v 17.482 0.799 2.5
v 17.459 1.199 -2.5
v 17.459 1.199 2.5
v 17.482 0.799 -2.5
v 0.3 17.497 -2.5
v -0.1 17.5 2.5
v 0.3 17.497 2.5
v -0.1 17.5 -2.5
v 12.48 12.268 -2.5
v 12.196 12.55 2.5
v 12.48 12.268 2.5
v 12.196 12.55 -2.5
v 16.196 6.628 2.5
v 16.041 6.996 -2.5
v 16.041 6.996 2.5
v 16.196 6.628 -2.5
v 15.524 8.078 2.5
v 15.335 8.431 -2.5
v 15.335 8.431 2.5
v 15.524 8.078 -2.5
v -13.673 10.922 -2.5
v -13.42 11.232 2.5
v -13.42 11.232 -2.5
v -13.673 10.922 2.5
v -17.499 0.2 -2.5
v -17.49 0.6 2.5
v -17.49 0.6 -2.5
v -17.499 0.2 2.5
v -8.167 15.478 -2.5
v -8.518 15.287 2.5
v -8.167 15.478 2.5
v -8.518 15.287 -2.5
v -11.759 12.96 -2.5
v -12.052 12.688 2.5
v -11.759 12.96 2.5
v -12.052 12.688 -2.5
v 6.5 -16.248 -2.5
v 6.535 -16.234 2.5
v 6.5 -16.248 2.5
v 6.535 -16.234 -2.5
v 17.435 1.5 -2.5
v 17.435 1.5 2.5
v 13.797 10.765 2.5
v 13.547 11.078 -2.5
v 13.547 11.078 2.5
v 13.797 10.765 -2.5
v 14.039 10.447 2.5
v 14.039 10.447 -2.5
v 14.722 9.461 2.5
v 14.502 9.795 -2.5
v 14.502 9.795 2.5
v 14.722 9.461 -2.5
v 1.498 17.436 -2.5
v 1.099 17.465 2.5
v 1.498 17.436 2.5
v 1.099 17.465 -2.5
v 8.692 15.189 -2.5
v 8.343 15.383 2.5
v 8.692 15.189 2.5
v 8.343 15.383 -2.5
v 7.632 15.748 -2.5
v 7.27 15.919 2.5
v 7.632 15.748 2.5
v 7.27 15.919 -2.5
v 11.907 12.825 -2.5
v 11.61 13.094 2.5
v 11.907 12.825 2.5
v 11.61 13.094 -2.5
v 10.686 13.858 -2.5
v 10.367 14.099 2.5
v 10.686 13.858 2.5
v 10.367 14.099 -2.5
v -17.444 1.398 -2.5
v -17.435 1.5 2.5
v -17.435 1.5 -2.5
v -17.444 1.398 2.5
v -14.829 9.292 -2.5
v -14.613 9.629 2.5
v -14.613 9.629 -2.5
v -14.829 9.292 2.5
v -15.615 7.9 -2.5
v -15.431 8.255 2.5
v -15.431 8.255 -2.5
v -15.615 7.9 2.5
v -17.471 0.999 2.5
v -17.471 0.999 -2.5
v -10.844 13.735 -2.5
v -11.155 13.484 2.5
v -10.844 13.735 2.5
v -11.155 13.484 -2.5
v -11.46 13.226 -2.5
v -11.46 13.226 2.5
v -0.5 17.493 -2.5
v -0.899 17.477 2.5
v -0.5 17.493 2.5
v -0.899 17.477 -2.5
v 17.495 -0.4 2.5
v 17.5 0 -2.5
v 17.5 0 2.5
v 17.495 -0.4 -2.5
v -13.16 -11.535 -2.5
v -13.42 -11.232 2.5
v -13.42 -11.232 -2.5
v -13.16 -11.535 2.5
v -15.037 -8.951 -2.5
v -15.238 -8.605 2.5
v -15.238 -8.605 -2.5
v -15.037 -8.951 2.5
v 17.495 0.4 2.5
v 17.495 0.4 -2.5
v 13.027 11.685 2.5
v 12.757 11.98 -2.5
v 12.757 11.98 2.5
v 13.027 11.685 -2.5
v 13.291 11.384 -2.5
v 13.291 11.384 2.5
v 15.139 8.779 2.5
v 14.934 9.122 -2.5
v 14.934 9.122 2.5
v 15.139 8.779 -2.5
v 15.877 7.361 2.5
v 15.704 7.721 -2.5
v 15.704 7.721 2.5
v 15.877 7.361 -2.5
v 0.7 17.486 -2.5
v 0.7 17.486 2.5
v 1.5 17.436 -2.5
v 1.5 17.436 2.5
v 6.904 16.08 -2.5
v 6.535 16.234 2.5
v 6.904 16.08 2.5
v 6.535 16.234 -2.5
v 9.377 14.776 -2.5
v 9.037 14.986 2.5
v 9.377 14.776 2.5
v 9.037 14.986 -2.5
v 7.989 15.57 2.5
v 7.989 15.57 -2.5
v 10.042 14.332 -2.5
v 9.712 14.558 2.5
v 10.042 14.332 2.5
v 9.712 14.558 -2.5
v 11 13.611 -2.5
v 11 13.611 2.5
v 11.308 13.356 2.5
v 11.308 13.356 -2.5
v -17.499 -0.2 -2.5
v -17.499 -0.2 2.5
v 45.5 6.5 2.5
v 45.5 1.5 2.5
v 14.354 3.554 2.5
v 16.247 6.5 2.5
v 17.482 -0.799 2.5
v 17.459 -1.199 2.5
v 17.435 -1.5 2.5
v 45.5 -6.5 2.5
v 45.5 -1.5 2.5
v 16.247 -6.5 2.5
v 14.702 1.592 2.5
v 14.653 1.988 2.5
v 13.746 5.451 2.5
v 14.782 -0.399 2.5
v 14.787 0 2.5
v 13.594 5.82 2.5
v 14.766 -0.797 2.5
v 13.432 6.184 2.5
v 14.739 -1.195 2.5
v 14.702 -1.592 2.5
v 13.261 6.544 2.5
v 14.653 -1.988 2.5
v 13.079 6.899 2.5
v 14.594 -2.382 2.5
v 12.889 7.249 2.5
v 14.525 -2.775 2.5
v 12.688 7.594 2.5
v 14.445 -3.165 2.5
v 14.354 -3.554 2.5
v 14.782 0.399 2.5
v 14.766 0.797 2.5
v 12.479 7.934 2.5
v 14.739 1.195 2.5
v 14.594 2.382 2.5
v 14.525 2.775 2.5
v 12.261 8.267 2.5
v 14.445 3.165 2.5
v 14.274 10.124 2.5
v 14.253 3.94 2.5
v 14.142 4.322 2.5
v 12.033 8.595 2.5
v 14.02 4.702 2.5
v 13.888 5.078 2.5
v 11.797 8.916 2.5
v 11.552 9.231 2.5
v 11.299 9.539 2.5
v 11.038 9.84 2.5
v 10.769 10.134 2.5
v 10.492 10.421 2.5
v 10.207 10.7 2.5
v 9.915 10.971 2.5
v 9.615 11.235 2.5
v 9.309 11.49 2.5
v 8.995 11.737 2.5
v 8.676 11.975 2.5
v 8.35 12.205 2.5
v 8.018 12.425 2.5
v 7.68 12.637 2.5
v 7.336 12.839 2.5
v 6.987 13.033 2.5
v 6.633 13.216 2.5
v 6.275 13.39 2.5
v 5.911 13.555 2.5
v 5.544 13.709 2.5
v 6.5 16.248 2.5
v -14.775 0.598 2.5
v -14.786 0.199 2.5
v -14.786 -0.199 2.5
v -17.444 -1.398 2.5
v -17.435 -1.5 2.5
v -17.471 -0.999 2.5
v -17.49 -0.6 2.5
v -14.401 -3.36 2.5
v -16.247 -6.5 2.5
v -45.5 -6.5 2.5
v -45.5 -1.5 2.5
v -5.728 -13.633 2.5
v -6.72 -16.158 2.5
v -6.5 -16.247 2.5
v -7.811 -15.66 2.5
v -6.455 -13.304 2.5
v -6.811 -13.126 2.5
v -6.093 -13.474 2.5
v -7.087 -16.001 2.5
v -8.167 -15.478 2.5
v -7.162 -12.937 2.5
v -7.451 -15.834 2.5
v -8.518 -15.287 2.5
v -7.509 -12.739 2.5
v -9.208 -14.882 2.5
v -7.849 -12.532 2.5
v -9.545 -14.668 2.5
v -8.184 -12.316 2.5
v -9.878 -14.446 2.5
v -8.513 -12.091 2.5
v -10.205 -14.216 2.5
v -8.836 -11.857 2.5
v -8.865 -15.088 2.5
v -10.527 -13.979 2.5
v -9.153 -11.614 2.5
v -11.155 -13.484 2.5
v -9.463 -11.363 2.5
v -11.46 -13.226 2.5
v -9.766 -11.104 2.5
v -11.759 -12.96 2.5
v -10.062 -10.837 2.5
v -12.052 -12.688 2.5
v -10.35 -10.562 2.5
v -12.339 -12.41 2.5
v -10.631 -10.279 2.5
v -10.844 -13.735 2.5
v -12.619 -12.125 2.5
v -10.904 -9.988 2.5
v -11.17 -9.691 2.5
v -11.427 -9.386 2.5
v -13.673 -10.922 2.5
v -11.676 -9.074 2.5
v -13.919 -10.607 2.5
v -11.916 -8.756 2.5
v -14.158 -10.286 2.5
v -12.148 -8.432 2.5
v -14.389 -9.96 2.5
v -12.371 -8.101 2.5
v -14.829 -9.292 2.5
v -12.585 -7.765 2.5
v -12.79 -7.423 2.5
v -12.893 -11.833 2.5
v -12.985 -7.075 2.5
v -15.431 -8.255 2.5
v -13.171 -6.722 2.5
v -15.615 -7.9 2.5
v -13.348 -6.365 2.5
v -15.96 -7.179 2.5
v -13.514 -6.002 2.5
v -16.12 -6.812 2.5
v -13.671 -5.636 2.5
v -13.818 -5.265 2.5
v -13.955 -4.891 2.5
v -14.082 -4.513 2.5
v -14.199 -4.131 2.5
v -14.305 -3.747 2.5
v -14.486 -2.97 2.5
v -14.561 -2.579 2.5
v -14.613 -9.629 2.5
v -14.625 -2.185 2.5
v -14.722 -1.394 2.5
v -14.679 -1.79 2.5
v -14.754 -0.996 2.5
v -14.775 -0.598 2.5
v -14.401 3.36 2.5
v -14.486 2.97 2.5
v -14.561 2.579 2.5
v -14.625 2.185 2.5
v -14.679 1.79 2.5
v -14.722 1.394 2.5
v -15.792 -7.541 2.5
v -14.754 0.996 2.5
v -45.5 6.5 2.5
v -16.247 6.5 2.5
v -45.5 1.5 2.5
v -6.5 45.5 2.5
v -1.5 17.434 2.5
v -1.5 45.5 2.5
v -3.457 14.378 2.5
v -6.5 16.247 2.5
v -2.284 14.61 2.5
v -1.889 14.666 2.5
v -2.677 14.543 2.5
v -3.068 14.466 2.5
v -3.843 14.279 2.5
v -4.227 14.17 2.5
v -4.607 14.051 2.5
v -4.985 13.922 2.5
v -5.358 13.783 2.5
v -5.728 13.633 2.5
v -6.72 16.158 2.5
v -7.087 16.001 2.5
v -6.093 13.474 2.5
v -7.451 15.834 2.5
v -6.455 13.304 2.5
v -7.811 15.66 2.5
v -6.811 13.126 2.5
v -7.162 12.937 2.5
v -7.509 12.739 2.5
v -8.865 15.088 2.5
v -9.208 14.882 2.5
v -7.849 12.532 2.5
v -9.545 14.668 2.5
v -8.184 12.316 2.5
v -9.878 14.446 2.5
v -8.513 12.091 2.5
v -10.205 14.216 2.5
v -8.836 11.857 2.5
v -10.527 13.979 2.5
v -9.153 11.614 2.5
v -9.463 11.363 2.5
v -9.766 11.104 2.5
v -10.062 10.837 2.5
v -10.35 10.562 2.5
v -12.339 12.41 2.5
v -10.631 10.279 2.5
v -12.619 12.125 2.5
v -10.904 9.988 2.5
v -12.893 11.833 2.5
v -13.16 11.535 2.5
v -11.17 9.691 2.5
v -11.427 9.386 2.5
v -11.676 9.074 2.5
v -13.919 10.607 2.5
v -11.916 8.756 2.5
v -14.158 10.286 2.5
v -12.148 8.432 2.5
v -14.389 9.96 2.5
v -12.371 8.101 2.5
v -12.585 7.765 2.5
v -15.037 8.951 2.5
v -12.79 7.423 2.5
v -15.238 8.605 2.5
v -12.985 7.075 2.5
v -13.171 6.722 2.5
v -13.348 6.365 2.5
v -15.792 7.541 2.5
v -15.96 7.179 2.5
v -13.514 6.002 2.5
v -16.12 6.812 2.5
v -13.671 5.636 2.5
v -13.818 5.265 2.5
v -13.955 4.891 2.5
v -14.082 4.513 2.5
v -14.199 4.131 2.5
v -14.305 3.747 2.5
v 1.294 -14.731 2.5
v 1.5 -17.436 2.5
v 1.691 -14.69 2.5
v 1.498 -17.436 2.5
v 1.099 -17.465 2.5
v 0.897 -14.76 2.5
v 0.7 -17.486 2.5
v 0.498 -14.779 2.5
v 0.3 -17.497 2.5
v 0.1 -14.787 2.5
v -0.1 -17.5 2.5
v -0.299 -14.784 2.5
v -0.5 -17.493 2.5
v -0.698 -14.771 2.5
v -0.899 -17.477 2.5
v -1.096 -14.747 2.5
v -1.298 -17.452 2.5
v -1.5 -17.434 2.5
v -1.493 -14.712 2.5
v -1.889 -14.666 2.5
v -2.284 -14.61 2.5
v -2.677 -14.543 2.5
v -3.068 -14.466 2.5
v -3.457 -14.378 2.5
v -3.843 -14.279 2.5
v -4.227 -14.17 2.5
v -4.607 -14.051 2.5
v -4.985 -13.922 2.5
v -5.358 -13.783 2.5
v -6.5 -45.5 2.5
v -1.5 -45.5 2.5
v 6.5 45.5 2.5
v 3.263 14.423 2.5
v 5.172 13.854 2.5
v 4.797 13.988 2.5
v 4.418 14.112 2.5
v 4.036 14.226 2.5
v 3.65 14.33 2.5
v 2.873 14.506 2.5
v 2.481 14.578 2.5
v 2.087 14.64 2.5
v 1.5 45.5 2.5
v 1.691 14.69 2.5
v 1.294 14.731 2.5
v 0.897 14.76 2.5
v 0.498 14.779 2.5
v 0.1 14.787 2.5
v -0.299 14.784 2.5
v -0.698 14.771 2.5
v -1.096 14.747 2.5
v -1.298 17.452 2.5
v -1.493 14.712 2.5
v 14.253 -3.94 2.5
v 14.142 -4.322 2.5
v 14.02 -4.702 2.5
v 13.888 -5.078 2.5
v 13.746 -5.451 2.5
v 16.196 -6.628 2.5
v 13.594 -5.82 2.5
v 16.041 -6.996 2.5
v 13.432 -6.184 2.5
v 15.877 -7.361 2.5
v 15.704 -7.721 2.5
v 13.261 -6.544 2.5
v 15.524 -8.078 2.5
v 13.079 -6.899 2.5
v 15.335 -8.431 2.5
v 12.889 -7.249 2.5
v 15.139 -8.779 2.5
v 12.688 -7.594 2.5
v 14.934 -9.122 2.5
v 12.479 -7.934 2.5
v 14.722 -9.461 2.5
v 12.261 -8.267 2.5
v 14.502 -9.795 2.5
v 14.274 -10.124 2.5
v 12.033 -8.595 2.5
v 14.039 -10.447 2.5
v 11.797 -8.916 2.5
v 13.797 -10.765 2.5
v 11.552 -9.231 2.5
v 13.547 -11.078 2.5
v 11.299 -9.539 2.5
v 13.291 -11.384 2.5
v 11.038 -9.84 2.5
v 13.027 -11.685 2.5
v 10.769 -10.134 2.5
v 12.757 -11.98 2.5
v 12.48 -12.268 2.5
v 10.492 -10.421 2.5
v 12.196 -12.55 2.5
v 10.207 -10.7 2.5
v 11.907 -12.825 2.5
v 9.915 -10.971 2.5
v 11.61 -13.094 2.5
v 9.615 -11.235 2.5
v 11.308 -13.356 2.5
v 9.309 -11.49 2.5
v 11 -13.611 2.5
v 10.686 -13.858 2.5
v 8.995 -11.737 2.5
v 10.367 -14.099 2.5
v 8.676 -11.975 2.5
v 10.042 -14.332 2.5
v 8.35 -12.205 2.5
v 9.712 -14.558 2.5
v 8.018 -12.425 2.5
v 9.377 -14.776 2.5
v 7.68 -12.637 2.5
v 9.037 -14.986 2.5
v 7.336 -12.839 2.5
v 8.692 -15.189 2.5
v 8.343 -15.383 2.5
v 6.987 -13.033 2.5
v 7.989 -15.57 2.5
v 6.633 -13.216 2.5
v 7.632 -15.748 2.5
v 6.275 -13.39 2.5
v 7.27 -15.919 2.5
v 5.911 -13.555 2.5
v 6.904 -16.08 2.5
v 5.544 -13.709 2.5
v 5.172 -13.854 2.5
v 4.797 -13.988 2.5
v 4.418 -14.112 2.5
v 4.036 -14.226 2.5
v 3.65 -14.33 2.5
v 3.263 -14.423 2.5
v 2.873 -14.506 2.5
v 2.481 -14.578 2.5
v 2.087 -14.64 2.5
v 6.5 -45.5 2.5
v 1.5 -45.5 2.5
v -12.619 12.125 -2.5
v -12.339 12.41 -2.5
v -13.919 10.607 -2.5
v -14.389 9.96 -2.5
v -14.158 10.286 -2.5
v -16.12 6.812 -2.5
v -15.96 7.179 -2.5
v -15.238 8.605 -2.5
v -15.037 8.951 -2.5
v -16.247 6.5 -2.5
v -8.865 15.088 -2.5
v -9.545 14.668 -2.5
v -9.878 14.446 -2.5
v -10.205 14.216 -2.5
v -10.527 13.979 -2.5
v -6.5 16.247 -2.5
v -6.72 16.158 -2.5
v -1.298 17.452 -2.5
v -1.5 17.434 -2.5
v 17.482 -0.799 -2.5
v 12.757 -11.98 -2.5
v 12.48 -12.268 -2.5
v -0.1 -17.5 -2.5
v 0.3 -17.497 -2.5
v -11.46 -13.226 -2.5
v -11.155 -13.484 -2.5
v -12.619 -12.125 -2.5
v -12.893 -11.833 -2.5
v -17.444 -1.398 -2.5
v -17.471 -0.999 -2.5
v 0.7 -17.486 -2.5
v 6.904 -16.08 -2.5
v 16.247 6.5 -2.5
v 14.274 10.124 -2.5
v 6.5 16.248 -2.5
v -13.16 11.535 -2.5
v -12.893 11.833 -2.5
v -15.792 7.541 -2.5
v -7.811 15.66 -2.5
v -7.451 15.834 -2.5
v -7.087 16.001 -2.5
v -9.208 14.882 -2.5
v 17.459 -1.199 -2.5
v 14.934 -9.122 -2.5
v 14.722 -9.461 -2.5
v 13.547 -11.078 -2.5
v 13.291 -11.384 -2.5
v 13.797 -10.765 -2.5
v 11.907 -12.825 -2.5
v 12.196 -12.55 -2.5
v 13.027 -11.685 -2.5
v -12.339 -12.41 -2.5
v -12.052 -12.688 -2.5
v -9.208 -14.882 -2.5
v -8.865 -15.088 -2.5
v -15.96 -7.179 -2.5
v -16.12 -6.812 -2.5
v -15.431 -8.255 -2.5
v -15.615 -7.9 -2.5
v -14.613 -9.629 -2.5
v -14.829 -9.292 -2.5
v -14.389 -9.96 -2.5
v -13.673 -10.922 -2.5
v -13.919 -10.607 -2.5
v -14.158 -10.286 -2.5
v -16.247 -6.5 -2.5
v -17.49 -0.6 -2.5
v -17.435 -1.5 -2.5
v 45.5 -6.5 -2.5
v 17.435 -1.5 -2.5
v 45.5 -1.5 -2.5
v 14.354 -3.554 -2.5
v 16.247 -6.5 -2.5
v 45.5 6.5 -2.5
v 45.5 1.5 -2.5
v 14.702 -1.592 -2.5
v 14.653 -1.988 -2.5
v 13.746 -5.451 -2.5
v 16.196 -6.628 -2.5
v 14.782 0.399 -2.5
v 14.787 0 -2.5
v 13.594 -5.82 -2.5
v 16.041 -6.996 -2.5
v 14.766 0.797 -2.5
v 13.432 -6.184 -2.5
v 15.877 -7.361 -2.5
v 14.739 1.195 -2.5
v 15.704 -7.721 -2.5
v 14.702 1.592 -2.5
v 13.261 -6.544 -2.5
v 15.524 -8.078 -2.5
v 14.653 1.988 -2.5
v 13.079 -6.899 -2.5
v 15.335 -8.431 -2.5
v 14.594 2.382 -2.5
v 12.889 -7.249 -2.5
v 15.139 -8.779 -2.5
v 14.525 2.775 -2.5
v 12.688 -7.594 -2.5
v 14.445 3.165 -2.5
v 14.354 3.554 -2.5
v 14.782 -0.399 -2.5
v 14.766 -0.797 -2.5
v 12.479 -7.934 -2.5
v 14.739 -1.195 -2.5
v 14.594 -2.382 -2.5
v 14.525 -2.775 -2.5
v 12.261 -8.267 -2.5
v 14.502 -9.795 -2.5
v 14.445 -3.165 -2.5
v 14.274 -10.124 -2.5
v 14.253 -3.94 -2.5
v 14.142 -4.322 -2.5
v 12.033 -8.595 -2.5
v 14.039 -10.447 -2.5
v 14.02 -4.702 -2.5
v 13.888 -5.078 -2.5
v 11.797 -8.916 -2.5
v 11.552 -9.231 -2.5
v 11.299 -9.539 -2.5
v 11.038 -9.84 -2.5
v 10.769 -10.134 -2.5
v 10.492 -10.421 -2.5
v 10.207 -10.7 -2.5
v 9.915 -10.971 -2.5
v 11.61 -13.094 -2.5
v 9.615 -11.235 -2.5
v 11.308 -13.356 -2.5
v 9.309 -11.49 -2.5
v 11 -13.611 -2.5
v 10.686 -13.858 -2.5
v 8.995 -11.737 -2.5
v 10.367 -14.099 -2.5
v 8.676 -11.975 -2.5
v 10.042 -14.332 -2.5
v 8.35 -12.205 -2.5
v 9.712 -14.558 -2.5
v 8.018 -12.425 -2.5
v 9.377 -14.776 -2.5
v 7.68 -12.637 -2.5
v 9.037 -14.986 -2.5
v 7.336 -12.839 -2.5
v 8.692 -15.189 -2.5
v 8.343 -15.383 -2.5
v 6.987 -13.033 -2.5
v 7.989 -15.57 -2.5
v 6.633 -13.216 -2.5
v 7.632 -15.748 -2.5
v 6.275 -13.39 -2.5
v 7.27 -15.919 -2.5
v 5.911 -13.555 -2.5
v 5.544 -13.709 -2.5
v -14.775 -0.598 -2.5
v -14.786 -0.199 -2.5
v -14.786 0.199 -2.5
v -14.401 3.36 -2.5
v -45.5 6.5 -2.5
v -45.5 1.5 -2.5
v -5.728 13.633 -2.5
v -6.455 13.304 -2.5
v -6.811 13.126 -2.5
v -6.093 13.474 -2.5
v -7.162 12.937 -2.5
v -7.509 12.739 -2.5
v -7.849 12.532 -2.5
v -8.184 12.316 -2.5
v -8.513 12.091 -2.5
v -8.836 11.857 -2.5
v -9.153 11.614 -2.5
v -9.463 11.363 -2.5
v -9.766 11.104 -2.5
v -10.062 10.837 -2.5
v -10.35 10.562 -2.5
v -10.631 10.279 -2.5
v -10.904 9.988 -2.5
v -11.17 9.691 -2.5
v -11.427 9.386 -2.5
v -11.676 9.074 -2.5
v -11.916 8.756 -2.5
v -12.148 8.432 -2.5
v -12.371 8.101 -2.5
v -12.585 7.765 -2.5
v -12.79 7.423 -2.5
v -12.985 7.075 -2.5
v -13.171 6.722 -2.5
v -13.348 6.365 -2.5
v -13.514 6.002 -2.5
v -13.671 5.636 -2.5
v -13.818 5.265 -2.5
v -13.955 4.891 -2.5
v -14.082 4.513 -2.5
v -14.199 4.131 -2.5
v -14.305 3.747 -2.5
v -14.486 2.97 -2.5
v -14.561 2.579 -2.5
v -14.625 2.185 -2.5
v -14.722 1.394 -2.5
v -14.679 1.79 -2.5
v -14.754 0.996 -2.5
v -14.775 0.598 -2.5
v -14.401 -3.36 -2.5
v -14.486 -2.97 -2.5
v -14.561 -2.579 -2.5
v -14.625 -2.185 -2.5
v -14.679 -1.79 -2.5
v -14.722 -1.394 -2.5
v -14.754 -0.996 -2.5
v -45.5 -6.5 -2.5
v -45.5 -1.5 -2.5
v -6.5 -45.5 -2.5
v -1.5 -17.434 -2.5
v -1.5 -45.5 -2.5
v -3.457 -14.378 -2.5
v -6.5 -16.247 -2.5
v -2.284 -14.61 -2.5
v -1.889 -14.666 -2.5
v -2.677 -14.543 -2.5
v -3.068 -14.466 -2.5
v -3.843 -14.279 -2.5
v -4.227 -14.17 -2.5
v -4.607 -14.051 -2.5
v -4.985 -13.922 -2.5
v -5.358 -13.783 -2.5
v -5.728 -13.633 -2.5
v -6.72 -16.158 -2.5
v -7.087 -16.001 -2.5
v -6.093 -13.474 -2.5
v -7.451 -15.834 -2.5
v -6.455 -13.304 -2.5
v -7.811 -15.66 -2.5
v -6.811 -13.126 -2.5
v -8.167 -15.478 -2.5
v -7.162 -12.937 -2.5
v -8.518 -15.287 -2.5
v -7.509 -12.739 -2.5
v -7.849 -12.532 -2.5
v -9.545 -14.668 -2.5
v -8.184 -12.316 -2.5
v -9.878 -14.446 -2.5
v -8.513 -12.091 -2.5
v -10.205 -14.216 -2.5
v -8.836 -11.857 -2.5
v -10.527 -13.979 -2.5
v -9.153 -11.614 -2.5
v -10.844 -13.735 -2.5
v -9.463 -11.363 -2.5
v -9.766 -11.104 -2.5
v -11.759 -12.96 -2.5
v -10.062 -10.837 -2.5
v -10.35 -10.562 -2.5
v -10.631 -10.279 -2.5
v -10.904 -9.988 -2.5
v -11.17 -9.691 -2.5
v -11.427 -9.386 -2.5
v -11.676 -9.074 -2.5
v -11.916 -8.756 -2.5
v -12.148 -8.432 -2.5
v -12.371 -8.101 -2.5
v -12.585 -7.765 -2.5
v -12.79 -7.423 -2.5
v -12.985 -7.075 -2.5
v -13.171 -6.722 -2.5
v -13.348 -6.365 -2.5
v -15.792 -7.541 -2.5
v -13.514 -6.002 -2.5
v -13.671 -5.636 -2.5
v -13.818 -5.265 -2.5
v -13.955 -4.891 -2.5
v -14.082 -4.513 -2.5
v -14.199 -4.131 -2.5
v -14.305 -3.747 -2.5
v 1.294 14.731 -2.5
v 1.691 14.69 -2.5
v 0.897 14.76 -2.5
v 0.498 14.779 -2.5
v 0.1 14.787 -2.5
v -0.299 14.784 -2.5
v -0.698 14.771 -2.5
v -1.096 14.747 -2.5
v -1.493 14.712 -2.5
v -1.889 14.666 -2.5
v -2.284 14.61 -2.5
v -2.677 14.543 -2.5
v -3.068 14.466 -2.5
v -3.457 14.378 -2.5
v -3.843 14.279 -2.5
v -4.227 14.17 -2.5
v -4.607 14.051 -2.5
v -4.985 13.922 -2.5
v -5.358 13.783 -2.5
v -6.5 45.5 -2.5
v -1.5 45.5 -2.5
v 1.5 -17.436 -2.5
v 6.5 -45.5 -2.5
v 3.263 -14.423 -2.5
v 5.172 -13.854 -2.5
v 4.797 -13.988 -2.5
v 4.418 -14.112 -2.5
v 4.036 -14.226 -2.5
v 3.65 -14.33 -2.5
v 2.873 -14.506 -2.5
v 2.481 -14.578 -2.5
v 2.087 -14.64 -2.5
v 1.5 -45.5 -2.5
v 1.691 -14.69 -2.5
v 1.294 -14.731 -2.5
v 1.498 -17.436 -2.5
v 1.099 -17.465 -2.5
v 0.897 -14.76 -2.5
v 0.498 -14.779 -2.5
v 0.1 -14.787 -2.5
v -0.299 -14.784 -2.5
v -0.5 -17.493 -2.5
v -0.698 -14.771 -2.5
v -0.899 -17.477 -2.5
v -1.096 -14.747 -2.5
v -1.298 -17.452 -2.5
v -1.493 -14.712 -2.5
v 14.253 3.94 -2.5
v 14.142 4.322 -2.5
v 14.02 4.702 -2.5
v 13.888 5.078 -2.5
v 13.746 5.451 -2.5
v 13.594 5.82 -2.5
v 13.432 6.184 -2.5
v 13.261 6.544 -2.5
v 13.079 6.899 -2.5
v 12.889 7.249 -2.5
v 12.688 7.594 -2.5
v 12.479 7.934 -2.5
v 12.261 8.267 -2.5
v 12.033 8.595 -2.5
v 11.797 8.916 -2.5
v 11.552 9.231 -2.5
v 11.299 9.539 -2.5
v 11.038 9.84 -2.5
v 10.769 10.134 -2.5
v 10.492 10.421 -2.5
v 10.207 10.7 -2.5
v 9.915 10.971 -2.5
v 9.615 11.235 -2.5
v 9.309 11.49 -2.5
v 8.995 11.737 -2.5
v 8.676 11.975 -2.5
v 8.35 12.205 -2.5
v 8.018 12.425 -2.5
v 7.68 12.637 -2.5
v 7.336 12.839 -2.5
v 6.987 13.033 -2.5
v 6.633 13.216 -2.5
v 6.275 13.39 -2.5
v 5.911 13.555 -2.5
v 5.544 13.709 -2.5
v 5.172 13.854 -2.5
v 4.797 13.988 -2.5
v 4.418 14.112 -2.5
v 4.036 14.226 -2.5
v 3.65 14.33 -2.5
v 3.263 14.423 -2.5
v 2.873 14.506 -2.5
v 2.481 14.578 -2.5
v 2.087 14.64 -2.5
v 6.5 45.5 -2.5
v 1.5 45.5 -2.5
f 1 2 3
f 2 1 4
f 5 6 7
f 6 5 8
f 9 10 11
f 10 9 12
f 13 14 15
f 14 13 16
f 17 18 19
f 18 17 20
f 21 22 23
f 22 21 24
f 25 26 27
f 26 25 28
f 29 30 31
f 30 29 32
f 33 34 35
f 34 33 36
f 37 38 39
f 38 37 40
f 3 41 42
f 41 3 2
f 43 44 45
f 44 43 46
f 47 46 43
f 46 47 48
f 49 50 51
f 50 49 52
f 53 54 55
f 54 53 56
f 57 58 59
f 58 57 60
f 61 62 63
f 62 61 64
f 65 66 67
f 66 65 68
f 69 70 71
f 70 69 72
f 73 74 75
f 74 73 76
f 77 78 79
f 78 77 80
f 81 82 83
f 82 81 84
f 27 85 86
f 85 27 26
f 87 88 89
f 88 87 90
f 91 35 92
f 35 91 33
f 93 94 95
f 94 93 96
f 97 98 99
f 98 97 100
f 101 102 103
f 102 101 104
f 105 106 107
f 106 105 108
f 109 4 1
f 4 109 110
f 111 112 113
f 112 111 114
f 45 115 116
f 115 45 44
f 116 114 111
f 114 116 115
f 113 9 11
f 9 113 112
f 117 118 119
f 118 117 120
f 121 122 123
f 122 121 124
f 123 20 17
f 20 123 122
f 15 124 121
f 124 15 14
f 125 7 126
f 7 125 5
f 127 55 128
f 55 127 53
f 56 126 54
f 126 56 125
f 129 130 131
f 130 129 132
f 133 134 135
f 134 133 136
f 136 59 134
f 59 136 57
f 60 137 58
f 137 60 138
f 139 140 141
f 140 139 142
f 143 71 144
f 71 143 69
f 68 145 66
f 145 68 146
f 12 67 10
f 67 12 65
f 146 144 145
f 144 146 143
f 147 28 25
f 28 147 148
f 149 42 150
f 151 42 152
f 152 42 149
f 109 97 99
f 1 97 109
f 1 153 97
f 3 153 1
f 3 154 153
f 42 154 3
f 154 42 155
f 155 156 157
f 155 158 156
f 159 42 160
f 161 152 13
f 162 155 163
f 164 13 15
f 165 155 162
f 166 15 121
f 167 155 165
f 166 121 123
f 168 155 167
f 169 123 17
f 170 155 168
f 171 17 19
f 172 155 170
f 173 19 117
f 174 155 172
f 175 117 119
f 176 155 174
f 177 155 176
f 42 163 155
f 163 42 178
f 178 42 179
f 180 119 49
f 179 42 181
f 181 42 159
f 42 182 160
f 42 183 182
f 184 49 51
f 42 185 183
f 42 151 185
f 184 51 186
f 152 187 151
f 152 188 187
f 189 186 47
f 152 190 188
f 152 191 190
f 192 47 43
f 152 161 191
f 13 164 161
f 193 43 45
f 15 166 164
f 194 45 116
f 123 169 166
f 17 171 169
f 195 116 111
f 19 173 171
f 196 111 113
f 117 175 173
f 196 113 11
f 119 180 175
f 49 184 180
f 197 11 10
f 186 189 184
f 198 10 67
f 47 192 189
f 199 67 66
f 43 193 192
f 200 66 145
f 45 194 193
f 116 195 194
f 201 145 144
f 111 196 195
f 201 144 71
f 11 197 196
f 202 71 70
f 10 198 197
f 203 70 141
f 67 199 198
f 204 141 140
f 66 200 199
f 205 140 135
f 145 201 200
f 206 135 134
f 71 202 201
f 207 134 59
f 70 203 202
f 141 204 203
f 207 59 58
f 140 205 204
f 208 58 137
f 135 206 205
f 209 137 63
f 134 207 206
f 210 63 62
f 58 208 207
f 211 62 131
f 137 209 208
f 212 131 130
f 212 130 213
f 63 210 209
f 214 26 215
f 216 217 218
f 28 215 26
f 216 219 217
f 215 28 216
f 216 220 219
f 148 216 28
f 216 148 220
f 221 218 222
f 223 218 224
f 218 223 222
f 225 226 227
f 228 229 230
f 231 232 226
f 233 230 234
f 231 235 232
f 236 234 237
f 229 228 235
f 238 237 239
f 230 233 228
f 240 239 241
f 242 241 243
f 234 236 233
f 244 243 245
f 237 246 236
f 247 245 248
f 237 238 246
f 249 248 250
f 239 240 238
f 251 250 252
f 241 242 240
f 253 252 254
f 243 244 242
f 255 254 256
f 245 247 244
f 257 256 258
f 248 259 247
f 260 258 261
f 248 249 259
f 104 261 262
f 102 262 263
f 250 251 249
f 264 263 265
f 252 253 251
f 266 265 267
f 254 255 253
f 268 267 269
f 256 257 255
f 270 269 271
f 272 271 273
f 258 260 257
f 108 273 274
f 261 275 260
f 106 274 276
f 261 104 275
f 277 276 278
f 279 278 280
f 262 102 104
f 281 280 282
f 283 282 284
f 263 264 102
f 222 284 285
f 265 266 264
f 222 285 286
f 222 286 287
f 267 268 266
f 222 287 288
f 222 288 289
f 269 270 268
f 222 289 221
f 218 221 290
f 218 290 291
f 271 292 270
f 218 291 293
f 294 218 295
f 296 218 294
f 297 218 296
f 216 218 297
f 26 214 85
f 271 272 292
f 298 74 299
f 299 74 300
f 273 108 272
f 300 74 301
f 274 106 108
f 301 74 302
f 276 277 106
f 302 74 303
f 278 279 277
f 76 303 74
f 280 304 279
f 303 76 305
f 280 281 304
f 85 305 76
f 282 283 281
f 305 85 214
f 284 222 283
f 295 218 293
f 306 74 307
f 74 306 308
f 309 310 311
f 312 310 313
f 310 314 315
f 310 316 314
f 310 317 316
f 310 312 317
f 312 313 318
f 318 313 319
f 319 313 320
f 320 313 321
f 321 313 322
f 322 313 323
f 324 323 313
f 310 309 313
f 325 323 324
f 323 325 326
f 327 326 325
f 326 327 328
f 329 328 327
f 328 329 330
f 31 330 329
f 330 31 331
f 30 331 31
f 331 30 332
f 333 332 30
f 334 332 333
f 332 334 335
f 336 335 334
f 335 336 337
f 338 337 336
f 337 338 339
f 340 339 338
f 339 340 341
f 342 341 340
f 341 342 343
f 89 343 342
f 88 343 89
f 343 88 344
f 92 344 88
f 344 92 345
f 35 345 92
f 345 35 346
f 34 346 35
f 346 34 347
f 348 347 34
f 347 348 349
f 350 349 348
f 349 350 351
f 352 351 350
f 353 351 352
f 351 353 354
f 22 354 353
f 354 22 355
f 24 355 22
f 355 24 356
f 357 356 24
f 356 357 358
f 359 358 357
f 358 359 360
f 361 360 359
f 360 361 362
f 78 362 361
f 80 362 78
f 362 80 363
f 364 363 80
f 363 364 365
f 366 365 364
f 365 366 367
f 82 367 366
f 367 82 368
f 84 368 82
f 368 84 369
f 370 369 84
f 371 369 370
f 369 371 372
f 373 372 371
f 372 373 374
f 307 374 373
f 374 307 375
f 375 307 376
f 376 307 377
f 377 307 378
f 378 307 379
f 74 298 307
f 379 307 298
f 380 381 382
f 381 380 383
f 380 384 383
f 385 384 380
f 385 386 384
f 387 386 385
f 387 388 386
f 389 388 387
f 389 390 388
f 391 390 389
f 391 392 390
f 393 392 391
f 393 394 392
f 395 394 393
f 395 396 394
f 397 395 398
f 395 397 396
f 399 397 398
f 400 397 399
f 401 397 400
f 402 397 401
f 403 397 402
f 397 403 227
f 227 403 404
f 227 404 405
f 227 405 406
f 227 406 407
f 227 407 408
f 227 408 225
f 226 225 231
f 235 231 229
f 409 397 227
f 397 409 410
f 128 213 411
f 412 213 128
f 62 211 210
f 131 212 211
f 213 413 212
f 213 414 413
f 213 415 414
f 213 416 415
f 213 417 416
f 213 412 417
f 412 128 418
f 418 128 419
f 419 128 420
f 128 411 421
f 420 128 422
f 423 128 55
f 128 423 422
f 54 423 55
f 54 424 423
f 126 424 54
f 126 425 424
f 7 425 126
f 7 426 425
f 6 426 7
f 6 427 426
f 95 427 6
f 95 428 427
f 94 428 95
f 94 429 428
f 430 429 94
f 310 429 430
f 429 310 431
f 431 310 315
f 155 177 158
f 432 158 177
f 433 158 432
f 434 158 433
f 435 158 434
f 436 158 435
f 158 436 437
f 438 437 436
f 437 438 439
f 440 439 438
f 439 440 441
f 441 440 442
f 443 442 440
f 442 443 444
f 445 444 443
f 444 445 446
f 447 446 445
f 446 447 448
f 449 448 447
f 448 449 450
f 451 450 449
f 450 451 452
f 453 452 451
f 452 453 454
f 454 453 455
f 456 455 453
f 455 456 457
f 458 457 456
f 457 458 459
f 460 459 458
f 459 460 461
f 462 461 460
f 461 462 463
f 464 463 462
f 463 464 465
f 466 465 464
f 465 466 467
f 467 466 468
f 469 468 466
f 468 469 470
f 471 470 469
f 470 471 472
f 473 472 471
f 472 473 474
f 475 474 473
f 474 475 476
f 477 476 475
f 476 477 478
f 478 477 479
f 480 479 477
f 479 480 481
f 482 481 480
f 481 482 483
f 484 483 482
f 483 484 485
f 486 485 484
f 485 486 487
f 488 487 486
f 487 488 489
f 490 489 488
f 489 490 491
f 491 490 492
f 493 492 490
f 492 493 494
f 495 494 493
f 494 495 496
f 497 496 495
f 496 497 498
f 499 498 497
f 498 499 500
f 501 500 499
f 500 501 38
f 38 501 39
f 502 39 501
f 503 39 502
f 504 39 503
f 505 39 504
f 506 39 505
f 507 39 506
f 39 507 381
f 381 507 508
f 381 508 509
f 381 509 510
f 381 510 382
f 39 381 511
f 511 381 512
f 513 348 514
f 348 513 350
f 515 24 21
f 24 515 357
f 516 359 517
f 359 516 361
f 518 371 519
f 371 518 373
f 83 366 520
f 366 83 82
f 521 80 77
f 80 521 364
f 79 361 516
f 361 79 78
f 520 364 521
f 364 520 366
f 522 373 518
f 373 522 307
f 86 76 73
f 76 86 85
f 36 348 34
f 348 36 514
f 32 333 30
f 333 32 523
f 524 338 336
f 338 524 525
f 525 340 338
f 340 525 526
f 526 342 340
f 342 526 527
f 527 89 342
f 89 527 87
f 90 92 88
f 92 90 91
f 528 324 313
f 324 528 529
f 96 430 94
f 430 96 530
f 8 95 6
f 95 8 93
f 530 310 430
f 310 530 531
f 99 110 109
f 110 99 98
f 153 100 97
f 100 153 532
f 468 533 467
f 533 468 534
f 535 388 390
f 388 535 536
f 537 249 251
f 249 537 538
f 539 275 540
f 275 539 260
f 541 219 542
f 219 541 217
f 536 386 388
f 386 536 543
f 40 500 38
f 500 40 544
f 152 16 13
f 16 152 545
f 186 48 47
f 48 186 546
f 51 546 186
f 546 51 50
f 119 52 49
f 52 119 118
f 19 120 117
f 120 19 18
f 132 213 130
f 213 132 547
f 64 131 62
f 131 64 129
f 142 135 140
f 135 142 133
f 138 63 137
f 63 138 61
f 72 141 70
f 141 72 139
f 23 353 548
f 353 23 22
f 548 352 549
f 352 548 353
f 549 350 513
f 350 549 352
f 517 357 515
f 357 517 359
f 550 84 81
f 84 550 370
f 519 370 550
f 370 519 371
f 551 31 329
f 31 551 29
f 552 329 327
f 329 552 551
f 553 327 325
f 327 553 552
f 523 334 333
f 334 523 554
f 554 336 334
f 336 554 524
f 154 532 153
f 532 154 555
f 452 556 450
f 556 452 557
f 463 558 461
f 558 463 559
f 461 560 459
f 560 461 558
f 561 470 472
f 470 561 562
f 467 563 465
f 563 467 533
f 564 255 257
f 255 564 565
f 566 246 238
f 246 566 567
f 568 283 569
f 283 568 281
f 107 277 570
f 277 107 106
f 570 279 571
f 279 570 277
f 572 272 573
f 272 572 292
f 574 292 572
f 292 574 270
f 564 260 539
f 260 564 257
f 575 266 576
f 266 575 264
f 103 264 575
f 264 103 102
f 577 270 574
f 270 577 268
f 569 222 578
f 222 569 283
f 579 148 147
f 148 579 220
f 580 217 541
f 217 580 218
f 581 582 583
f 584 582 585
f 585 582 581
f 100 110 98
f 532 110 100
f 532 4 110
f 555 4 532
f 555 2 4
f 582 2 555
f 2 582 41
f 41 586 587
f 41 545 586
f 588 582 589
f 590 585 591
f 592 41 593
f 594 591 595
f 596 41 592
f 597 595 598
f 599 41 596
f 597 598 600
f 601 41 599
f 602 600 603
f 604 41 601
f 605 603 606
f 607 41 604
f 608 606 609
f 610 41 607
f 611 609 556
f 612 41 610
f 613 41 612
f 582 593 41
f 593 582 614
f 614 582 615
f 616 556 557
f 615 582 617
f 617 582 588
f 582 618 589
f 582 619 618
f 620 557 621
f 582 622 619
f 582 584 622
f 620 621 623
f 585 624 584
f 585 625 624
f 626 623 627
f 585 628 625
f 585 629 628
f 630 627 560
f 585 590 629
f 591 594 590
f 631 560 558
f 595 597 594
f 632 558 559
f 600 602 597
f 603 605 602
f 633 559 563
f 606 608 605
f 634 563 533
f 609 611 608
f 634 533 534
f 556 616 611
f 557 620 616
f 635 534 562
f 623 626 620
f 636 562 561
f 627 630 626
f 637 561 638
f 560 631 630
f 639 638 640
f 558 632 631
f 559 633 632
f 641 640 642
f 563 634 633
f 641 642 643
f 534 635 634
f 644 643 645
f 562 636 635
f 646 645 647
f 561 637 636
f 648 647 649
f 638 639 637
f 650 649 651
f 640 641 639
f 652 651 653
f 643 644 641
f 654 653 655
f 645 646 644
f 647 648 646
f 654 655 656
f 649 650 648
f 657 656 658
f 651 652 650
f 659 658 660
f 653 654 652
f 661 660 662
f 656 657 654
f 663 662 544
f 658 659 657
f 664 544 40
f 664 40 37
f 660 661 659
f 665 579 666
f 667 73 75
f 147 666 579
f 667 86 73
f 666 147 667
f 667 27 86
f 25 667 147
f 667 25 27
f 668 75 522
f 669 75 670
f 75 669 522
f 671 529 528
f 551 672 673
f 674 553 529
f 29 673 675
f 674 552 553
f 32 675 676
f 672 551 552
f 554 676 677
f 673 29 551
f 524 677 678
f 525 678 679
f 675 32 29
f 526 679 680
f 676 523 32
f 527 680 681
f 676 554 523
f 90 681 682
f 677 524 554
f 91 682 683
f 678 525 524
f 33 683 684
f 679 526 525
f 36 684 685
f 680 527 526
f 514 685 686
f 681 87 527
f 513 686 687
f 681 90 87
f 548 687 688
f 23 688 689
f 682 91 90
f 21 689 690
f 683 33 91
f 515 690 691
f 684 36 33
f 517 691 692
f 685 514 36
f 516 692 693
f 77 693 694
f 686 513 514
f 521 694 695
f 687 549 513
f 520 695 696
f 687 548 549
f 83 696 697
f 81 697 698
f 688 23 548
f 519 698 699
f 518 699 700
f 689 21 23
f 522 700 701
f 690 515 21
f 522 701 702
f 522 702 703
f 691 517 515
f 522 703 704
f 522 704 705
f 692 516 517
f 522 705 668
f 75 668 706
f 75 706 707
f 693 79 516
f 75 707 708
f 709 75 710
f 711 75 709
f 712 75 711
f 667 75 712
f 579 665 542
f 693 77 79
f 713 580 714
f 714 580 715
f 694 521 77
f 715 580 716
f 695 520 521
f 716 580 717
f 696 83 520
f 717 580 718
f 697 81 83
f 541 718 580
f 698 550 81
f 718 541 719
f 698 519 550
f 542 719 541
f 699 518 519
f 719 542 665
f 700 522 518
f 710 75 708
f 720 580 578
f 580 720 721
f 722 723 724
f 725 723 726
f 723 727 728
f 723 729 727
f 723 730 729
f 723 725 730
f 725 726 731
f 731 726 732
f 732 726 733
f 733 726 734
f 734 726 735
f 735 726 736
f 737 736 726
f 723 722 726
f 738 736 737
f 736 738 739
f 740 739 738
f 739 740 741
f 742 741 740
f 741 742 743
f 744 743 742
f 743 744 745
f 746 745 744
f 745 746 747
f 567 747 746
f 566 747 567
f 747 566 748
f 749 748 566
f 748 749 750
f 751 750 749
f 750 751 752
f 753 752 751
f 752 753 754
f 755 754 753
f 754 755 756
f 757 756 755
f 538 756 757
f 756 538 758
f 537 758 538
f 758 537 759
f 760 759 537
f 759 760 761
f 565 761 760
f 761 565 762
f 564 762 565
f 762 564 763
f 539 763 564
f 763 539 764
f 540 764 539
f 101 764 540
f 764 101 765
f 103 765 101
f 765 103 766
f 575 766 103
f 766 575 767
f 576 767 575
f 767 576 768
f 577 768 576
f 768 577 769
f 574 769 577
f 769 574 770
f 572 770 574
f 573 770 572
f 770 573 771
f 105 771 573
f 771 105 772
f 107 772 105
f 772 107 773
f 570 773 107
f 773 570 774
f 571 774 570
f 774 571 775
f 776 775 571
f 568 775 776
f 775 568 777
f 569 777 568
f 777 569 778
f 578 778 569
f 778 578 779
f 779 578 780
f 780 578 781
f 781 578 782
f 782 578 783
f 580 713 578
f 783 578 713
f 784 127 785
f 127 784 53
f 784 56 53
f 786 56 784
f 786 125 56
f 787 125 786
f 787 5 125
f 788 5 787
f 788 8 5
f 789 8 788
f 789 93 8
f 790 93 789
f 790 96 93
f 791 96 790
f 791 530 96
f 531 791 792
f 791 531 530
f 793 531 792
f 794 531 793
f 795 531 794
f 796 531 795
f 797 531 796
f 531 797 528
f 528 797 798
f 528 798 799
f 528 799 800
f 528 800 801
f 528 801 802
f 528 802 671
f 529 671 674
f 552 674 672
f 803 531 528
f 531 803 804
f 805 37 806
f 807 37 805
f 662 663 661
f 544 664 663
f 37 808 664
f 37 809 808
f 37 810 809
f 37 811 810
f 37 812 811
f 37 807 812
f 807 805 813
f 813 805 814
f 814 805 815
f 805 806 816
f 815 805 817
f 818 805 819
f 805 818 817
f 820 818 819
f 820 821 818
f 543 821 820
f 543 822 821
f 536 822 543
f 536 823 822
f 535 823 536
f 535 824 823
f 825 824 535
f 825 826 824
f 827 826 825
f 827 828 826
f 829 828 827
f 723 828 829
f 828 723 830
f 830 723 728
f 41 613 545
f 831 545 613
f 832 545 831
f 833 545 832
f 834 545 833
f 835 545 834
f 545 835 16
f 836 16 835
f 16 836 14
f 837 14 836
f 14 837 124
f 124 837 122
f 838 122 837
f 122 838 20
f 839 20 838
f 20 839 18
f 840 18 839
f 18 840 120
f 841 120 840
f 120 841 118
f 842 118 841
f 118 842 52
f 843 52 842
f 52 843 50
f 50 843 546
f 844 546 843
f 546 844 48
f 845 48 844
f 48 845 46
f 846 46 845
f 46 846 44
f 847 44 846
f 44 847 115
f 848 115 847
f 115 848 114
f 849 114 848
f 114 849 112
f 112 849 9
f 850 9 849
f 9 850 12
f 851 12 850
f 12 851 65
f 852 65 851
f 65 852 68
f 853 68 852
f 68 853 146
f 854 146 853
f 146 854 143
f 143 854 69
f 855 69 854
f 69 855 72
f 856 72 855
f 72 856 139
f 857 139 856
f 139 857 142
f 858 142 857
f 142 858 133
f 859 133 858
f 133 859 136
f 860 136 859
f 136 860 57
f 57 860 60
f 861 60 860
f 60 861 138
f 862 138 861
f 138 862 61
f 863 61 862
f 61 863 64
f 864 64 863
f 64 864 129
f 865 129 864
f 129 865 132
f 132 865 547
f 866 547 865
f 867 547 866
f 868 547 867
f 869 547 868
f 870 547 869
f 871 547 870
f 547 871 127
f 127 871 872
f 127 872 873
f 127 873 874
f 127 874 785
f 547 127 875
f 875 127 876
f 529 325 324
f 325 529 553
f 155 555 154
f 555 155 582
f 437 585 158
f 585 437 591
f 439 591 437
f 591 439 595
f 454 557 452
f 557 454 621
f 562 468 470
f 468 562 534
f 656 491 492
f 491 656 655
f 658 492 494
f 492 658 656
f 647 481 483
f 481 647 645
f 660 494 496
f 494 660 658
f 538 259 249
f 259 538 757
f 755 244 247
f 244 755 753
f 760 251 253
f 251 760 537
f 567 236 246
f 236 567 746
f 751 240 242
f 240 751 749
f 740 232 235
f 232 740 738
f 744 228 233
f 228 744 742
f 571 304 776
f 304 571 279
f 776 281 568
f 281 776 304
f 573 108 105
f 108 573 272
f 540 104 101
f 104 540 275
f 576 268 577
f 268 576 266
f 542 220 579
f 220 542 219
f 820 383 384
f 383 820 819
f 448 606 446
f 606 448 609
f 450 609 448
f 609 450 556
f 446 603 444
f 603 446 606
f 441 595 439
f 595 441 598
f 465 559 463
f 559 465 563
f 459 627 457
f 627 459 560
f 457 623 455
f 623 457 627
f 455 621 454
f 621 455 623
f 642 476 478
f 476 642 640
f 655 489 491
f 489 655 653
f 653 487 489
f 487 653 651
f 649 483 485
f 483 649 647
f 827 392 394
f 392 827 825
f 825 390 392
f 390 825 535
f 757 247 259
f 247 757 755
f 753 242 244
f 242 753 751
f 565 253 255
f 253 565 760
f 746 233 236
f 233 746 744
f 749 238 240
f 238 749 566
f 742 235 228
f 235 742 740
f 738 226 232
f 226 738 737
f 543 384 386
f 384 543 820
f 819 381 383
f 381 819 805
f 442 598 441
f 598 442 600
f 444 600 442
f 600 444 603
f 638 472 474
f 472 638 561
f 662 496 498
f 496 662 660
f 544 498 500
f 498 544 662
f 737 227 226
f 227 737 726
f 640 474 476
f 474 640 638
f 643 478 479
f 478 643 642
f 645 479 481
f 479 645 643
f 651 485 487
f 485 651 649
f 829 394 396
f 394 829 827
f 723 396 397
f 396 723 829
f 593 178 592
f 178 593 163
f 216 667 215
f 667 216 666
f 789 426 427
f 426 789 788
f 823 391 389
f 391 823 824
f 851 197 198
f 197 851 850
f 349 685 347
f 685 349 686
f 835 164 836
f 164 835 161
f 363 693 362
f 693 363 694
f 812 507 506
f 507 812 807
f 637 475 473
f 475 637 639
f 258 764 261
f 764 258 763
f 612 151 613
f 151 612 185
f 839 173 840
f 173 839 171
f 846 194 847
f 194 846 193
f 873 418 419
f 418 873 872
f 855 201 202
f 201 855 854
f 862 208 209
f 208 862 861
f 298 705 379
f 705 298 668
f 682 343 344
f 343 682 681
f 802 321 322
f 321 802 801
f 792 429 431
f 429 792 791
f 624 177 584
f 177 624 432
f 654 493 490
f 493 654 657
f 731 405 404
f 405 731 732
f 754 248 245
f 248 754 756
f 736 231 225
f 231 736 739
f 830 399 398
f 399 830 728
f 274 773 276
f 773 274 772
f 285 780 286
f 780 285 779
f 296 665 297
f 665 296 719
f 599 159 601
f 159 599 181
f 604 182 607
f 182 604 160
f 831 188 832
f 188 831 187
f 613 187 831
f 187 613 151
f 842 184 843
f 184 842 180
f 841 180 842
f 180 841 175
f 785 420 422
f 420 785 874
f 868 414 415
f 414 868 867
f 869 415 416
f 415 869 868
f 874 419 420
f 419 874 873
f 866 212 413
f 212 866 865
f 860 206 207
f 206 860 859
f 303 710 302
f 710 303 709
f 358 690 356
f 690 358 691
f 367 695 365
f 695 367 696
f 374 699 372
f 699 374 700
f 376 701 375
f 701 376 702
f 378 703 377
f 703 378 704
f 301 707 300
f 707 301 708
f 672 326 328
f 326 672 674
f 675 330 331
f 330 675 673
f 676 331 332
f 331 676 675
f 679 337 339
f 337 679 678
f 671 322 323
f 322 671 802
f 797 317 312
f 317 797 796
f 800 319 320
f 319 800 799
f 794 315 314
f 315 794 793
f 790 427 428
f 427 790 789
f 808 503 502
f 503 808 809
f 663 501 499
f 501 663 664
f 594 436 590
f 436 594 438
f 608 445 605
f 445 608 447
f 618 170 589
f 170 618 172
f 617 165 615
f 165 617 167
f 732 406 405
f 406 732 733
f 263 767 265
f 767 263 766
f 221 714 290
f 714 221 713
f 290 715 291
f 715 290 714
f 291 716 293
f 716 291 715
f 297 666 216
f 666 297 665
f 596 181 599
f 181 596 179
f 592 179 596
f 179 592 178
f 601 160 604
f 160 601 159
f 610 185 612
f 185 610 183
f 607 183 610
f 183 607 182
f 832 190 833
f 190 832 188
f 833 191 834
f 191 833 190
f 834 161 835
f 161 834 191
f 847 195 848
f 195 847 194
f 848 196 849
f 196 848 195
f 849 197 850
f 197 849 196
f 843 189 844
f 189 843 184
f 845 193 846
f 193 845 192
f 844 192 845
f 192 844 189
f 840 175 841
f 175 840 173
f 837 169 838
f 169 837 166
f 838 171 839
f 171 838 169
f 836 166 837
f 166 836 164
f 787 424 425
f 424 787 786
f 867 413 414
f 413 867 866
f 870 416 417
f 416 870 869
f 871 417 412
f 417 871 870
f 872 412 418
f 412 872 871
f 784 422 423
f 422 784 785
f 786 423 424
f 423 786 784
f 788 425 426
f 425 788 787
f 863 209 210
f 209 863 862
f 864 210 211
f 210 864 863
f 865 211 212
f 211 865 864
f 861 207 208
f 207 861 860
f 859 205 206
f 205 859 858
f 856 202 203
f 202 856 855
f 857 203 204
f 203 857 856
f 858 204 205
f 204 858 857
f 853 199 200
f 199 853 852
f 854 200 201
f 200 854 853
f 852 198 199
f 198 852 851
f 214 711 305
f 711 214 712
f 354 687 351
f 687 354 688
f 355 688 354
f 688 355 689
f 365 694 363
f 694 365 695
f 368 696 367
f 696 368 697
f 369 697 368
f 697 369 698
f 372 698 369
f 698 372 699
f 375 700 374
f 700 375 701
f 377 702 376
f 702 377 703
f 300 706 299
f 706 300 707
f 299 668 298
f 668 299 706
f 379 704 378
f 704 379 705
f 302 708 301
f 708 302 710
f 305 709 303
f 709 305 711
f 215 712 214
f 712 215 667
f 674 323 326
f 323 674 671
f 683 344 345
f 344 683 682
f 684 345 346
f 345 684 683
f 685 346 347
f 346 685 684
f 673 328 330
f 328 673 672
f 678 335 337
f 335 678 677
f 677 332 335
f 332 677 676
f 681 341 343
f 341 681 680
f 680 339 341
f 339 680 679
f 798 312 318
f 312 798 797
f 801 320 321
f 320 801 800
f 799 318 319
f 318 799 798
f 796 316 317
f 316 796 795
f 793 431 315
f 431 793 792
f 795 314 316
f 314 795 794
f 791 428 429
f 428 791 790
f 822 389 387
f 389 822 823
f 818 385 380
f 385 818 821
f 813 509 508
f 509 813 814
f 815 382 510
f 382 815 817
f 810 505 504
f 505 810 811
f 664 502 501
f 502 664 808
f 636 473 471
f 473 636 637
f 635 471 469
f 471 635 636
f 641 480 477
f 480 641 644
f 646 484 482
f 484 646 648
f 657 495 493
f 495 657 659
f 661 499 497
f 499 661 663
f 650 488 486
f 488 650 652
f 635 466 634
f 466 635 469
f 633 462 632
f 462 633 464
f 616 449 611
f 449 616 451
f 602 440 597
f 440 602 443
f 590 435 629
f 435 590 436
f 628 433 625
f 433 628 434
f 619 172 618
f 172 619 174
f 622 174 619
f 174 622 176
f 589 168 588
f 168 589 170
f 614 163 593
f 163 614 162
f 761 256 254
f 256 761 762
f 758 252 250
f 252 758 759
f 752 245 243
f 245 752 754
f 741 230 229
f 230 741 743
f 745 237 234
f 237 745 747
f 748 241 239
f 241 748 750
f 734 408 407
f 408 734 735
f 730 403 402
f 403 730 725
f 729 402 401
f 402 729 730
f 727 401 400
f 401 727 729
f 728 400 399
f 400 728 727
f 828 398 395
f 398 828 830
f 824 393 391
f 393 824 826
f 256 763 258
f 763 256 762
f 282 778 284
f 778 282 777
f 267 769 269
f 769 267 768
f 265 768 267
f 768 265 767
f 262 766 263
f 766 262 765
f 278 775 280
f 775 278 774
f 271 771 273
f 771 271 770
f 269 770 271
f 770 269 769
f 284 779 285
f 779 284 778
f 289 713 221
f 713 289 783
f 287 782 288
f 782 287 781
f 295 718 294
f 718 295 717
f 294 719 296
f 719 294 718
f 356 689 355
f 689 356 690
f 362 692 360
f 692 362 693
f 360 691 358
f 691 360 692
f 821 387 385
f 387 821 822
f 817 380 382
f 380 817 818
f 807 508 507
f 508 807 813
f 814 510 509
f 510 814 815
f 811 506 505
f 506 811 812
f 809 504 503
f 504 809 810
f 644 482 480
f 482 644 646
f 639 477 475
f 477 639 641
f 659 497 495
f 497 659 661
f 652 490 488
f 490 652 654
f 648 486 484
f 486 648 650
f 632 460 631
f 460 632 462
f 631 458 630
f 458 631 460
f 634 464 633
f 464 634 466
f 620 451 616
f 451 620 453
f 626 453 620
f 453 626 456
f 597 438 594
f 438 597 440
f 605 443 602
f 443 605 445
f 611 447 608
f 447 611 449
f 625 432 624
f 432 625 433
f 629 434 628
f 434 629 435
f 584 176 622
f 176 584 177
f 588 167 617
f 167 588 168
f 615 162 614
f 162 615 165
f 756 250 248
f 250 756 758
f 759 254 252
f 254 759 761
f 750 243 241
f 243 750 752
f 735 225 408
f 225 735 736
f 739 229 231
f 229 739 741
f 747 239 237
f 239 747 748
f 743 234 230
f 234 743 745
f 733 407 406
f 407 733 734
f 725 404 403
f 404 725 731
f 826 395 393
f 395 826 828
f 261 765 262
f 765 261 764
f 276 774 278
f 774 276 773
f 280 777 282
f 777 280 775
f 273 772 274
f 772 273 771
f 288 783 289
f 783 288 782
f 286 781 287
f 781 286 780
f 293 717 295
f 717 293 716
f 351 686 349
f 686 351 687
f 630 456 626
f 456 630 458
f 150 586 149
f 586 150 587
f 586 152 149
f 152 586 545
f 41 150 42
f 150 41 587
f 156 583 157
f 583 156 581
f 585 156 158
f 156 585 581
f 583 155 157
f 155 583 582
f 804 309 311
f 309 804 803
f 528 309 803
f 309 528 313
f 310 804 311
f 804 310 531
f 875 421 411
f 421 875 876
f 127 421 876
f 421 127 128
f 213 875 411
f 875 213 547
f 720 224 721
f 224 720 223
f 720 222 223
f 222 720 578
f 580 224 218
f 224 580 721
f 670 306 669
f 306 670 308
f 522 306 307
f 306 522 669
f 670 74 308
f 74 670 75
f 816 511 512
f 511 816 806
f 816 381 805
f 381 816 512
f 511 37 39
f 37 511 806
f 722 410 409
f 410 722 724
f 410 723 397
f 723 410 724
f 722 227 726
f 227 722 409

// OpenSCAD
// fin guide for placing fins on inner tube

$fa = 1;
$fs = 0.4;

inner_tube_dia = 29.575;
guide_outer_dia = 35;

inner_tube_rad = inner_tube_dia / 2;
guide_outer_rad = guide_outer_dia / 2;

fin_thickness = 3;
fin_guide_width = 5;
fin_guide_length = 30;

guide_thickness = 5;

module center_ring() {
    difference() {
        cylinder(h=guide_thickness, r=guide_outer_rad, center=true);
        translate([0,0,-0.05])
            cylinder(h=guide_thickness+0.2, r=inner_tube_rad, center=true);
    }
}

module extensions(angle=0) {
    rotate([0,0,angle]) {
        translate([guide_outer_rad-2,fin_thickness/2,-guide_thickness/2])
            cube([fin_guide_length, fin_guide_width, guide_thickness]);
        translate([guide_outer_rad-2,-fin_thickness/2-fin_guide_width,-guide_thickness/2])
            cube([fin_guide_length, fin_guide_width, guide_thickness]);
    }
}
        
        

union() {
    center_ring();
    extensions(0);
    extensions(90);
    extensions(180);
    extensions(270);
}
